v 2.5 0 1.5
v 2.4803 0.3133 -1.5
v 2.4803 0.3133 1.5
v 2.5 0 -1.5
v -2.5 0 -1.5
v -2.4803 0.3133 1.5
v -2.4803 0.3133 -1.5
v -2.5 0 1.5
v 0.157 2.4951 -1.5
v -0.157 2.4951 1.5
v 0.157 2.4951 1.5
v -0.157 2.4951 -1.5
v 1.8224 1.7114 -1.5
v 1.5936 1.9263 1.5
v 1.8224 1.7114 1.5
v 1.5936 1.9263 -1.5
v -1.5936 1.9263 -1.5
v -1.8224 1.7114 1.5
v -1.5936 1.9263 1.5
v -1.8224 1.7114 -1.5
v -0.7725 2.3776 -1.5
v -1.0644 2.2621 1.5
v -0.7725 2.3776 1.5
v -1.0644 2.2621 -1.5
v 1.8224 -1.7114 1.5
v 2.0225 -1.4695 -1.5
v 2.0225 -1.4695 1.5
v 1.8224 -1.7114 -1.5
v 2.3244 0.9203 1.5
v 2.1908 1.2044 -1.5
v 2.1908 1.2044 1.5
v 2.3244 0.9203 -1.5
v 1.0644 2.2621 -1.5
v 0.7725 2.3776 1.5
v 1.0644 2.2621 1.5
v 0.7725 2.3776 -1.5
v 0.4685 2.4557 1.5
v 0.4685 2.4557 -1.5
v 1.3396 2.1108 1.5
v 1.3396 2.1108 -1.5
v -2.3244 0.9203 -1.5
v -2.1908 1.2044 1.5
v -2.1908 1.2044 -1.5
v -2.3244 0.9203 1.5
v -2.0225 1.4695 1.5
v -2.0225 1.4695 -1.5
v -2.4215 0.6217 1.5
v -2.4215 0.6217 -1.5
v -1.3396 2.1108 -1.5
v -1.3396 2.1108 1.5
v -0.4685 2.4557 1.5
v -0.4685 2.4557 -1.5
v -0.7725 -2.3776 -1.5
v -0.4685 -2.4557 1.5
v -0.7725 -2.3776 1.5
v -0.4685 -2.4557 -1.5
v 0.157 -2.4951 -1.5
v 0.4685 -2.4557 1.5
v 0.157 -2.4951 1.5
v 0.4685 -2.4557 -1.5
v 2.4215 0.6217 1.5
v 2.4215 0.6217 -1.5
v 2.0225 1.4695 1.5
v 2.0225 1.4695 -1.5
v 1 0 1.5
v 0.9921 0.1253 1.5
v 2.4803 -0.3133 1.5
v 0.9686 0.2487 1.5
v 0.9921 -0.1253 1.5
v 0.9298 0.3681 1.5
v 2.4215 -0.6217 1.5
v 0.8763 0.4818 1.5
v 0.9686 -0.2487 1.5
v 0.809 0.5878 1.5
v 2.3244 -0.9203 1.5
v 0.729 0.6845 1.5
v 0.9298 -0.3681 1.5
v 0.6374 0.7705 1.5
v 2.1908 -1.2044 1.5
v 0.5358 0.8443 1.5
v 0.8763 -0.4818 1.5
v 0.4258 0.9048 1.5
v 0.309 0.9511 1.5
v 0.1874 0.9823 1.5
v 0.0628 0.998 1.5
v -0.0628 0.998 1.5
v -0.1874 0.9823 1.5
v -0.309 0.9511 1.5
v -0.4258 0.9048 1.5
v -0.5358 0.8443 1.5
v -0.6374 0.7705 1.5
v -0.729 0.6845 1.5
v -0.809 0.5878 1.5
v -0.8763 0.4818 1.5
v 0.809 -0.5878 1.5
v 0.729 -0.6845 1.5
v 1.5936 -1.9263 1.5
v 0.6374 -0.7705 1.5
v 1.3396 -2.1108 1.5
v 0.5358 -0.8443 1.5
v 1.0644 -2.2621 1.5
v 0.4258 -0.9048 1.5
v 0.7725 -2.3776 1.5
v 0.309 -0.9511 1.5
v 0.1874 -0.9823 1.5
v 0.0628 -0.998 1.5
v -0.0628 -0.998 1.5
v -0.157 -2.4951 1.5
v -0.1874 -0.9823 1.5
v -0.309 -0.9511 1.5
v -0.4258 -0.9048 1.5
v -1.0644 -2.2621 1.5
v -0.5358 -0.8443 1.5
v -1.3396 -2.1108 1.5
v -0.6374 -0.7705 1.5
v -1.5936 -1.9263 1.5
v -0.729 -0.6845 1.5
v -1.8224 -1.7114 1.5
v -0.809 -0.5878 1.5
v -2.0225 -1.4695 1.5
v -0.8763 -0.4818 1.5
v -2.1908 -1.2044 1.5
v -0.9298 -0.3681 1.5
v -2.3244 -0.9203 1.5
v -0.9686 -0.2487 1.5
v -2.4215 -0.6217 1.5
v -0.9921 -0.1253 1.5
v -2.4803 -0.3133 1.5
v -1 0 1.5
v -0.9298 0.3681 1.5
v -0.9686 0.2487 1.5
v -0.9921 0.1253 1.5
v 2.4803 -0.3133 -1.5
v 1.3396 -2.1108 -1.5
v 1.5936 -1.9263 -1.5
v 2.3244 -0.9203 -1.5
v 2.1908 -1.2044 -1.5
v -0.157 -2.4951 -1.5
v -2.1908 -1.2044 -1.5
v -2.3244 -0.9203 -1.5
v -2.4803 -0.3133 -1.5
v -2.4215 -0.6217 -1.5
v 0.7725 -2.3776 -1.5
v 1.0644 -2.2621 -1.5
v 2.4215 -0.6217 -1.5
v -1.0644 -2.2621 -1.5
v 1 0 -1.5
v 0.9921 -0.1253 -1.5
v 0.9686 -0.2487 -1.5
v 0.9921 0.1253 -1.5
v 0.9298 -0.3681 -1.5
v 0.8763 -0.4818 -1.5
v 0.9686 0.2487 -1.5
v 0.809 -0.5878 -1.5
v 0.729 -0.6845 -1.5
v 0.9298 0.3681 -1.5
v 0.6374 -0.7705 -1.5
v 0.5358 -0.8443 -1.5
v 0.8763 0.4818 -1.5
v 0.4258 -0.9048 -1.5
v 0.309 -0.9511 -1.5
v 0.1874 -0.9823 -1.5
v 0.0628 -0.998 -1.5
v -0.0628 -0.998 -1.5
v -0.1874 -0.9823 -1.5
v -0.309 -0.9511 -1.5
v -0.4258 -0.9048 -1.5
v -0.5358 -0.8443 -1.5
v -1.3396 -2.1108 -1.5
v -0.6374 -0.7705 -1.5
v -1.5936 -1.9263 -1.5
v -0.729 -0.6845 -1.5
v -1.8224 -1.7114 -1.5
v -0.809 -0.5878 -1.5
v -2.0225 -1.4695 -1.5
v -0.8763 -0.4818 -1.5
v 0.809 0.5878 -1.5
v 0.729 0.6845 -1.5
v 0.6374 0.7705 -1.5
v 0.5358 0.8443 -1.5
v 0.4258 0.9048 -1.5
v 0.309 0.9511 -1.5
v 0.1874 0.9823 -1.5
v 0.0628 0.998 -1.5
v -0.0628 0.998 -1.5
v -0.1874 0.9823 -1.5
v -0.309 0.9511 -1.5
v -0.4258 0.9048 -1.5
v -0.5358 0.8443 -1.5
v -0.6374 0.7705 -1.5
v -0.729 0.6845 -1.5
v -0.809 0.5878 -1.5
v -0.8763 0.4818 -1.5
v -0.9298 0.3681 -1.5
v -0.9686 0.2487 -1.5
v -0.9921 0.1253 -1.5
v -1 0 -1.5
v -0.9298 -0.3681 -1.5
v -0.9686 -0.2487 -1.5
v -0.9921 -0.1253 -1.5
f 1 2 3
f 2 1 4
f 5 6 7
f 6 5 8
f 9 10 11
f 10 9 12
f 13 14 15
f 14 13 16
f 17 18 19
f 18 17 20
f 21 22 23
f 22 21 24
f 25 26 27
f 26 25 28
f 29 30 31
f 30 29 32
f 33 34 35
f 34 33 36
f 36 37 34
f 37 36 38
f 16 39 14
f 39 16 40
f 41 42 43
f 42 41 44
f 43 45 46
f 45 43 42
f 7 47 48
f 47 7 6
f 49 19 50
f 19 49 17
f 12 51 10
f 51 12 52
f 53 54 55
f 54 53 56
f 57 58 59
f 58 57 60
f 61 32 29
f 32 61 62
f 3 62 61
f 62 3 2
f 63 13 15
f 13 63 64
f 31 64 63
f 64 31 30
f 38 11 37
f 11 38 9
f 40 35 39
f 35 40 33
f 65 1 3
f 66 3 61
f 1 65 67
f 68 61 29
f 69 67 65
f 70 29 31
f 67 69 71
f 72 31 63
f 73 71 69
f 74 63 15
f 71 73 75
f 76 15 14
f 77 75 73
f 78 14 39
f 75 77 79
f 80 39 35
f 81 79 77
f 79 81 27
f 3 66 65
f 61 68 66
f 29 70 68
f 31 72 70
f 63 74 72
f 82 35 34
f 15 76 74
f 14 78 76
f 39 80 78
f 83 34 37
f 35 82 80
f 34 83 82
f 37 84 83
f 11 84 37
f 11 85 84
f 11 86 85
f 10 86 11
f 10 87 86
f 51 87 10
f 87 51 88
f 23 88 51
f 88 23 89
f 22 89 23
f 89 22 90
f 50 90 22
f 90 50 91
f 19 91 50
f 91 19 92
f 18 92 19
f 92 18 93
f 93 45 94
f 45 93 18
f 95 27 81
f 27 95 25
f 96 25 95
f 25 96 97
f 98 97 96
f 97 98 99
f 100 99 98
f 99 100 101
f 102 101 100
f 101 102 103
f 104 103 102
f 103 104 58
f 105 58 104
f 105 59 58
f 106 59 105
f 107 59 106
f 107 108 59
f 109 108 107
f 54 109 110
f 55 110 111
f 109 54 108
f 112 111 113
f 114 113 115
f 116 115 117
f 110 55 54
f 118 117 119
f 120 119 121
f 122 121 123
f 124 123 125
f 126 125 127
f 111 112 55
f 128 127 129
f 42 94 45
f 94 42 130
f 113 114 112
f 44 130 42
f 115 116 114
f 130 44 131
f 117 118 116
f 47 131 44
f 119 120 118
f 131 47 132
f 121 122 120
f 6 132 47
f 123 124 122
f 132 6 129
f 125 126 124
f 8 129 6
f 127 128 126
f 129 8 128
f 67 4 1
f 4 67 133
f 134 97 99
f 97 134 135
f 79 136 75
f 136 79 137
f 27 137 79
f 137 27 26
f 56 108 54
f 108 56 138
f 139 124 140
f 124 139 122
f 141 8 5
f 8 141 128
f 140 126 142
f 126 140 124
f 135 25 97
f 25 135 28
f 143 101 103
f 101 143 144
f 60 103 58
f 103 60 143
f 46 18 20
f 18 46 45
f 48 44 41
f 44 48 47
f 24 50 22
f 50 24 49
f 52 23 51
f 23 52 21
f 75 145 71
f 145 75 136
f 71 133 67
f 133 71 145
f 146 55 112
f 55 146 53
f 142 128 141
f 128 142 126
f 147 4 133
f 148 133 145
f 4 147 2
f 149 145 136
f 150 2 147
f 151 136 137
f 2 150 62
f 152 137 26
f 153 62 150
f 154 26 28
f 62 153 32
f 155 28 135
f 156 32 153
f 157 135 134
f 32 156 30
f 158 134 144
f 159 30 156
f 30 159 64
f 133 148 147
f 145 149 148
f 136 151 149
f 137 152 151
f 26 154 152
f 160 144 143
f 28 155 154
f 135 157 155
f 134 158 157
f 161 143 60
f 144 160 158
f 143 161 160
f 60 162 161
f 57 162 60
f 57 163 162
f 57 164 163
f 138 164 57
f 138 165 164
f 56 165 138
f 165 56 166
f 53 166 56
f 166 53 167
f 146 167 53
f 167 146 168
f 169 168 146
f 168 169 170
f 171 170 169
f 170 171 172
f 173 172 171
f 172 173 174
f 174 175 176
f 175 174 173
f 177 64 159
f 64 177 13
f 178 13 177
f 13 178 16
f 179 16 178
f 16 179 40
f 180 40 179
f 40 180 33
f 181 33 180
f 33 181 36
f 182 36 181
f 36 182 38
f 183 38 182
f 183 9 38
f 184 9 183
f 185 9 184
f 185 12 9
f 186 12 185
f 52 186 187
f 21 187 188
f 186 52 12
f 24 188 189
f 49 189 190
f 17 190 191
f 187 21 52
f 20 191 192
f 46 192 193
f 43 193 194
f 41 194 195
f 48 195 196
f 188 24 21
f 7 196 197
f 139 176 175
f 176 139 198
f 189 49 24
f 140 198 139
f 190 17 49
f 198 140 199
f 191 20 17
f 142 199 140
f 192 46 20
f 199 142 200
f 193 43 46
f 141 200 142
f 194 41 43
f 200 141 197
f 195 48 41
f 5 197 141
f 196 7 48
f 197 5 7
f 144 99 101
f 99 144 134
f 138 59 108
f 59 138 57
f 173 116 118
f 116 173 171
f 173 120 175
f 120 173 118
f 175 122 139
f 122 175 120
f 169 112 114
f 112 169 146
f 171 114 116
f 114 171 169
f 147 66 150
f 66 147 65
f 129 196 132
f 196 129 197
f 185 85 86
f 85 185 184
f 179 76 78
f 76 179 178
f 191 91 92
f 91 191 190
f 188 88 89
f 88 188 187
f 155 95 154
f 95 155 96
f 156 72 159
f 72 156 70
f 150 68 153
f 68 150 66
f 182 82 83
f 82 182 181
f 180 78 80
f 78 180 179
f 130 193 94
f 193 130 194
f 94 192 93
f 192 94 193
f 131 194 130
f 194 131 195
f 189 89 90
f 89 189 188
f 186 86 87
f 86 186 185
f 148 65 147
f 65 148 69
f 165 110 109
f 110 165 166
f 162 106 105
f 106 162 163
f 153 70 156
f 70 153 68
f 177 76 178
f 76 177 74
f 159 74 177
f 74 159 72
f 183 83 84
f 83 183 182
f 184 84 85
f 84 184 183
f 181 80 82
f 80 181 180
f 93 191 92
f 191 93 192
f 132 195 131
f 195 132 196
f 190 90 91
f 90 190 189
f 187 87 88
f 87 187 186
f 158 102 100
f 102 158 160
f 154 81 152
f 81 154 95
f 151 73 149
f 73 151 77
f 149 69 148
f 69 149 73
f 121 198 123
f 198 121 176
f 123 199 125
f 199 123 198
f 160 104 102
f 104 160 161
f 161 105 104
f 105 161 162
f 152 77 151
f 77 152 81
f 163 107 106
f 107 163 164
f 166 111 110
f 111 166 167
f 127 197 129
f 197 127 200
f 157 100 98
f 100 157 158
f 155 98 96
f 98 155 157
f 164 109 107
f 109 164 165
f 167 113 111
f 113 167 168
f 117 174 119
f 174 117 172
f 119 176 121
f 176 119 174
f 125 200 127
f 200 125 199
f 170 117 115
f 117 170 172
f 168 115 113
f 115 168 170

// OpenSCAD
$fn = 50;


difference() {
	union() {
		translate(v = [0, 0, -1.5000000000]) {
			cylinder(h = 3, r = 2.5000000000);
		}
	}
	union() {
		translate(v = [0, 0, -100.0000000000]) {
			cylinder(h = 200, r = 1.0000000000);
		}
	}
}
